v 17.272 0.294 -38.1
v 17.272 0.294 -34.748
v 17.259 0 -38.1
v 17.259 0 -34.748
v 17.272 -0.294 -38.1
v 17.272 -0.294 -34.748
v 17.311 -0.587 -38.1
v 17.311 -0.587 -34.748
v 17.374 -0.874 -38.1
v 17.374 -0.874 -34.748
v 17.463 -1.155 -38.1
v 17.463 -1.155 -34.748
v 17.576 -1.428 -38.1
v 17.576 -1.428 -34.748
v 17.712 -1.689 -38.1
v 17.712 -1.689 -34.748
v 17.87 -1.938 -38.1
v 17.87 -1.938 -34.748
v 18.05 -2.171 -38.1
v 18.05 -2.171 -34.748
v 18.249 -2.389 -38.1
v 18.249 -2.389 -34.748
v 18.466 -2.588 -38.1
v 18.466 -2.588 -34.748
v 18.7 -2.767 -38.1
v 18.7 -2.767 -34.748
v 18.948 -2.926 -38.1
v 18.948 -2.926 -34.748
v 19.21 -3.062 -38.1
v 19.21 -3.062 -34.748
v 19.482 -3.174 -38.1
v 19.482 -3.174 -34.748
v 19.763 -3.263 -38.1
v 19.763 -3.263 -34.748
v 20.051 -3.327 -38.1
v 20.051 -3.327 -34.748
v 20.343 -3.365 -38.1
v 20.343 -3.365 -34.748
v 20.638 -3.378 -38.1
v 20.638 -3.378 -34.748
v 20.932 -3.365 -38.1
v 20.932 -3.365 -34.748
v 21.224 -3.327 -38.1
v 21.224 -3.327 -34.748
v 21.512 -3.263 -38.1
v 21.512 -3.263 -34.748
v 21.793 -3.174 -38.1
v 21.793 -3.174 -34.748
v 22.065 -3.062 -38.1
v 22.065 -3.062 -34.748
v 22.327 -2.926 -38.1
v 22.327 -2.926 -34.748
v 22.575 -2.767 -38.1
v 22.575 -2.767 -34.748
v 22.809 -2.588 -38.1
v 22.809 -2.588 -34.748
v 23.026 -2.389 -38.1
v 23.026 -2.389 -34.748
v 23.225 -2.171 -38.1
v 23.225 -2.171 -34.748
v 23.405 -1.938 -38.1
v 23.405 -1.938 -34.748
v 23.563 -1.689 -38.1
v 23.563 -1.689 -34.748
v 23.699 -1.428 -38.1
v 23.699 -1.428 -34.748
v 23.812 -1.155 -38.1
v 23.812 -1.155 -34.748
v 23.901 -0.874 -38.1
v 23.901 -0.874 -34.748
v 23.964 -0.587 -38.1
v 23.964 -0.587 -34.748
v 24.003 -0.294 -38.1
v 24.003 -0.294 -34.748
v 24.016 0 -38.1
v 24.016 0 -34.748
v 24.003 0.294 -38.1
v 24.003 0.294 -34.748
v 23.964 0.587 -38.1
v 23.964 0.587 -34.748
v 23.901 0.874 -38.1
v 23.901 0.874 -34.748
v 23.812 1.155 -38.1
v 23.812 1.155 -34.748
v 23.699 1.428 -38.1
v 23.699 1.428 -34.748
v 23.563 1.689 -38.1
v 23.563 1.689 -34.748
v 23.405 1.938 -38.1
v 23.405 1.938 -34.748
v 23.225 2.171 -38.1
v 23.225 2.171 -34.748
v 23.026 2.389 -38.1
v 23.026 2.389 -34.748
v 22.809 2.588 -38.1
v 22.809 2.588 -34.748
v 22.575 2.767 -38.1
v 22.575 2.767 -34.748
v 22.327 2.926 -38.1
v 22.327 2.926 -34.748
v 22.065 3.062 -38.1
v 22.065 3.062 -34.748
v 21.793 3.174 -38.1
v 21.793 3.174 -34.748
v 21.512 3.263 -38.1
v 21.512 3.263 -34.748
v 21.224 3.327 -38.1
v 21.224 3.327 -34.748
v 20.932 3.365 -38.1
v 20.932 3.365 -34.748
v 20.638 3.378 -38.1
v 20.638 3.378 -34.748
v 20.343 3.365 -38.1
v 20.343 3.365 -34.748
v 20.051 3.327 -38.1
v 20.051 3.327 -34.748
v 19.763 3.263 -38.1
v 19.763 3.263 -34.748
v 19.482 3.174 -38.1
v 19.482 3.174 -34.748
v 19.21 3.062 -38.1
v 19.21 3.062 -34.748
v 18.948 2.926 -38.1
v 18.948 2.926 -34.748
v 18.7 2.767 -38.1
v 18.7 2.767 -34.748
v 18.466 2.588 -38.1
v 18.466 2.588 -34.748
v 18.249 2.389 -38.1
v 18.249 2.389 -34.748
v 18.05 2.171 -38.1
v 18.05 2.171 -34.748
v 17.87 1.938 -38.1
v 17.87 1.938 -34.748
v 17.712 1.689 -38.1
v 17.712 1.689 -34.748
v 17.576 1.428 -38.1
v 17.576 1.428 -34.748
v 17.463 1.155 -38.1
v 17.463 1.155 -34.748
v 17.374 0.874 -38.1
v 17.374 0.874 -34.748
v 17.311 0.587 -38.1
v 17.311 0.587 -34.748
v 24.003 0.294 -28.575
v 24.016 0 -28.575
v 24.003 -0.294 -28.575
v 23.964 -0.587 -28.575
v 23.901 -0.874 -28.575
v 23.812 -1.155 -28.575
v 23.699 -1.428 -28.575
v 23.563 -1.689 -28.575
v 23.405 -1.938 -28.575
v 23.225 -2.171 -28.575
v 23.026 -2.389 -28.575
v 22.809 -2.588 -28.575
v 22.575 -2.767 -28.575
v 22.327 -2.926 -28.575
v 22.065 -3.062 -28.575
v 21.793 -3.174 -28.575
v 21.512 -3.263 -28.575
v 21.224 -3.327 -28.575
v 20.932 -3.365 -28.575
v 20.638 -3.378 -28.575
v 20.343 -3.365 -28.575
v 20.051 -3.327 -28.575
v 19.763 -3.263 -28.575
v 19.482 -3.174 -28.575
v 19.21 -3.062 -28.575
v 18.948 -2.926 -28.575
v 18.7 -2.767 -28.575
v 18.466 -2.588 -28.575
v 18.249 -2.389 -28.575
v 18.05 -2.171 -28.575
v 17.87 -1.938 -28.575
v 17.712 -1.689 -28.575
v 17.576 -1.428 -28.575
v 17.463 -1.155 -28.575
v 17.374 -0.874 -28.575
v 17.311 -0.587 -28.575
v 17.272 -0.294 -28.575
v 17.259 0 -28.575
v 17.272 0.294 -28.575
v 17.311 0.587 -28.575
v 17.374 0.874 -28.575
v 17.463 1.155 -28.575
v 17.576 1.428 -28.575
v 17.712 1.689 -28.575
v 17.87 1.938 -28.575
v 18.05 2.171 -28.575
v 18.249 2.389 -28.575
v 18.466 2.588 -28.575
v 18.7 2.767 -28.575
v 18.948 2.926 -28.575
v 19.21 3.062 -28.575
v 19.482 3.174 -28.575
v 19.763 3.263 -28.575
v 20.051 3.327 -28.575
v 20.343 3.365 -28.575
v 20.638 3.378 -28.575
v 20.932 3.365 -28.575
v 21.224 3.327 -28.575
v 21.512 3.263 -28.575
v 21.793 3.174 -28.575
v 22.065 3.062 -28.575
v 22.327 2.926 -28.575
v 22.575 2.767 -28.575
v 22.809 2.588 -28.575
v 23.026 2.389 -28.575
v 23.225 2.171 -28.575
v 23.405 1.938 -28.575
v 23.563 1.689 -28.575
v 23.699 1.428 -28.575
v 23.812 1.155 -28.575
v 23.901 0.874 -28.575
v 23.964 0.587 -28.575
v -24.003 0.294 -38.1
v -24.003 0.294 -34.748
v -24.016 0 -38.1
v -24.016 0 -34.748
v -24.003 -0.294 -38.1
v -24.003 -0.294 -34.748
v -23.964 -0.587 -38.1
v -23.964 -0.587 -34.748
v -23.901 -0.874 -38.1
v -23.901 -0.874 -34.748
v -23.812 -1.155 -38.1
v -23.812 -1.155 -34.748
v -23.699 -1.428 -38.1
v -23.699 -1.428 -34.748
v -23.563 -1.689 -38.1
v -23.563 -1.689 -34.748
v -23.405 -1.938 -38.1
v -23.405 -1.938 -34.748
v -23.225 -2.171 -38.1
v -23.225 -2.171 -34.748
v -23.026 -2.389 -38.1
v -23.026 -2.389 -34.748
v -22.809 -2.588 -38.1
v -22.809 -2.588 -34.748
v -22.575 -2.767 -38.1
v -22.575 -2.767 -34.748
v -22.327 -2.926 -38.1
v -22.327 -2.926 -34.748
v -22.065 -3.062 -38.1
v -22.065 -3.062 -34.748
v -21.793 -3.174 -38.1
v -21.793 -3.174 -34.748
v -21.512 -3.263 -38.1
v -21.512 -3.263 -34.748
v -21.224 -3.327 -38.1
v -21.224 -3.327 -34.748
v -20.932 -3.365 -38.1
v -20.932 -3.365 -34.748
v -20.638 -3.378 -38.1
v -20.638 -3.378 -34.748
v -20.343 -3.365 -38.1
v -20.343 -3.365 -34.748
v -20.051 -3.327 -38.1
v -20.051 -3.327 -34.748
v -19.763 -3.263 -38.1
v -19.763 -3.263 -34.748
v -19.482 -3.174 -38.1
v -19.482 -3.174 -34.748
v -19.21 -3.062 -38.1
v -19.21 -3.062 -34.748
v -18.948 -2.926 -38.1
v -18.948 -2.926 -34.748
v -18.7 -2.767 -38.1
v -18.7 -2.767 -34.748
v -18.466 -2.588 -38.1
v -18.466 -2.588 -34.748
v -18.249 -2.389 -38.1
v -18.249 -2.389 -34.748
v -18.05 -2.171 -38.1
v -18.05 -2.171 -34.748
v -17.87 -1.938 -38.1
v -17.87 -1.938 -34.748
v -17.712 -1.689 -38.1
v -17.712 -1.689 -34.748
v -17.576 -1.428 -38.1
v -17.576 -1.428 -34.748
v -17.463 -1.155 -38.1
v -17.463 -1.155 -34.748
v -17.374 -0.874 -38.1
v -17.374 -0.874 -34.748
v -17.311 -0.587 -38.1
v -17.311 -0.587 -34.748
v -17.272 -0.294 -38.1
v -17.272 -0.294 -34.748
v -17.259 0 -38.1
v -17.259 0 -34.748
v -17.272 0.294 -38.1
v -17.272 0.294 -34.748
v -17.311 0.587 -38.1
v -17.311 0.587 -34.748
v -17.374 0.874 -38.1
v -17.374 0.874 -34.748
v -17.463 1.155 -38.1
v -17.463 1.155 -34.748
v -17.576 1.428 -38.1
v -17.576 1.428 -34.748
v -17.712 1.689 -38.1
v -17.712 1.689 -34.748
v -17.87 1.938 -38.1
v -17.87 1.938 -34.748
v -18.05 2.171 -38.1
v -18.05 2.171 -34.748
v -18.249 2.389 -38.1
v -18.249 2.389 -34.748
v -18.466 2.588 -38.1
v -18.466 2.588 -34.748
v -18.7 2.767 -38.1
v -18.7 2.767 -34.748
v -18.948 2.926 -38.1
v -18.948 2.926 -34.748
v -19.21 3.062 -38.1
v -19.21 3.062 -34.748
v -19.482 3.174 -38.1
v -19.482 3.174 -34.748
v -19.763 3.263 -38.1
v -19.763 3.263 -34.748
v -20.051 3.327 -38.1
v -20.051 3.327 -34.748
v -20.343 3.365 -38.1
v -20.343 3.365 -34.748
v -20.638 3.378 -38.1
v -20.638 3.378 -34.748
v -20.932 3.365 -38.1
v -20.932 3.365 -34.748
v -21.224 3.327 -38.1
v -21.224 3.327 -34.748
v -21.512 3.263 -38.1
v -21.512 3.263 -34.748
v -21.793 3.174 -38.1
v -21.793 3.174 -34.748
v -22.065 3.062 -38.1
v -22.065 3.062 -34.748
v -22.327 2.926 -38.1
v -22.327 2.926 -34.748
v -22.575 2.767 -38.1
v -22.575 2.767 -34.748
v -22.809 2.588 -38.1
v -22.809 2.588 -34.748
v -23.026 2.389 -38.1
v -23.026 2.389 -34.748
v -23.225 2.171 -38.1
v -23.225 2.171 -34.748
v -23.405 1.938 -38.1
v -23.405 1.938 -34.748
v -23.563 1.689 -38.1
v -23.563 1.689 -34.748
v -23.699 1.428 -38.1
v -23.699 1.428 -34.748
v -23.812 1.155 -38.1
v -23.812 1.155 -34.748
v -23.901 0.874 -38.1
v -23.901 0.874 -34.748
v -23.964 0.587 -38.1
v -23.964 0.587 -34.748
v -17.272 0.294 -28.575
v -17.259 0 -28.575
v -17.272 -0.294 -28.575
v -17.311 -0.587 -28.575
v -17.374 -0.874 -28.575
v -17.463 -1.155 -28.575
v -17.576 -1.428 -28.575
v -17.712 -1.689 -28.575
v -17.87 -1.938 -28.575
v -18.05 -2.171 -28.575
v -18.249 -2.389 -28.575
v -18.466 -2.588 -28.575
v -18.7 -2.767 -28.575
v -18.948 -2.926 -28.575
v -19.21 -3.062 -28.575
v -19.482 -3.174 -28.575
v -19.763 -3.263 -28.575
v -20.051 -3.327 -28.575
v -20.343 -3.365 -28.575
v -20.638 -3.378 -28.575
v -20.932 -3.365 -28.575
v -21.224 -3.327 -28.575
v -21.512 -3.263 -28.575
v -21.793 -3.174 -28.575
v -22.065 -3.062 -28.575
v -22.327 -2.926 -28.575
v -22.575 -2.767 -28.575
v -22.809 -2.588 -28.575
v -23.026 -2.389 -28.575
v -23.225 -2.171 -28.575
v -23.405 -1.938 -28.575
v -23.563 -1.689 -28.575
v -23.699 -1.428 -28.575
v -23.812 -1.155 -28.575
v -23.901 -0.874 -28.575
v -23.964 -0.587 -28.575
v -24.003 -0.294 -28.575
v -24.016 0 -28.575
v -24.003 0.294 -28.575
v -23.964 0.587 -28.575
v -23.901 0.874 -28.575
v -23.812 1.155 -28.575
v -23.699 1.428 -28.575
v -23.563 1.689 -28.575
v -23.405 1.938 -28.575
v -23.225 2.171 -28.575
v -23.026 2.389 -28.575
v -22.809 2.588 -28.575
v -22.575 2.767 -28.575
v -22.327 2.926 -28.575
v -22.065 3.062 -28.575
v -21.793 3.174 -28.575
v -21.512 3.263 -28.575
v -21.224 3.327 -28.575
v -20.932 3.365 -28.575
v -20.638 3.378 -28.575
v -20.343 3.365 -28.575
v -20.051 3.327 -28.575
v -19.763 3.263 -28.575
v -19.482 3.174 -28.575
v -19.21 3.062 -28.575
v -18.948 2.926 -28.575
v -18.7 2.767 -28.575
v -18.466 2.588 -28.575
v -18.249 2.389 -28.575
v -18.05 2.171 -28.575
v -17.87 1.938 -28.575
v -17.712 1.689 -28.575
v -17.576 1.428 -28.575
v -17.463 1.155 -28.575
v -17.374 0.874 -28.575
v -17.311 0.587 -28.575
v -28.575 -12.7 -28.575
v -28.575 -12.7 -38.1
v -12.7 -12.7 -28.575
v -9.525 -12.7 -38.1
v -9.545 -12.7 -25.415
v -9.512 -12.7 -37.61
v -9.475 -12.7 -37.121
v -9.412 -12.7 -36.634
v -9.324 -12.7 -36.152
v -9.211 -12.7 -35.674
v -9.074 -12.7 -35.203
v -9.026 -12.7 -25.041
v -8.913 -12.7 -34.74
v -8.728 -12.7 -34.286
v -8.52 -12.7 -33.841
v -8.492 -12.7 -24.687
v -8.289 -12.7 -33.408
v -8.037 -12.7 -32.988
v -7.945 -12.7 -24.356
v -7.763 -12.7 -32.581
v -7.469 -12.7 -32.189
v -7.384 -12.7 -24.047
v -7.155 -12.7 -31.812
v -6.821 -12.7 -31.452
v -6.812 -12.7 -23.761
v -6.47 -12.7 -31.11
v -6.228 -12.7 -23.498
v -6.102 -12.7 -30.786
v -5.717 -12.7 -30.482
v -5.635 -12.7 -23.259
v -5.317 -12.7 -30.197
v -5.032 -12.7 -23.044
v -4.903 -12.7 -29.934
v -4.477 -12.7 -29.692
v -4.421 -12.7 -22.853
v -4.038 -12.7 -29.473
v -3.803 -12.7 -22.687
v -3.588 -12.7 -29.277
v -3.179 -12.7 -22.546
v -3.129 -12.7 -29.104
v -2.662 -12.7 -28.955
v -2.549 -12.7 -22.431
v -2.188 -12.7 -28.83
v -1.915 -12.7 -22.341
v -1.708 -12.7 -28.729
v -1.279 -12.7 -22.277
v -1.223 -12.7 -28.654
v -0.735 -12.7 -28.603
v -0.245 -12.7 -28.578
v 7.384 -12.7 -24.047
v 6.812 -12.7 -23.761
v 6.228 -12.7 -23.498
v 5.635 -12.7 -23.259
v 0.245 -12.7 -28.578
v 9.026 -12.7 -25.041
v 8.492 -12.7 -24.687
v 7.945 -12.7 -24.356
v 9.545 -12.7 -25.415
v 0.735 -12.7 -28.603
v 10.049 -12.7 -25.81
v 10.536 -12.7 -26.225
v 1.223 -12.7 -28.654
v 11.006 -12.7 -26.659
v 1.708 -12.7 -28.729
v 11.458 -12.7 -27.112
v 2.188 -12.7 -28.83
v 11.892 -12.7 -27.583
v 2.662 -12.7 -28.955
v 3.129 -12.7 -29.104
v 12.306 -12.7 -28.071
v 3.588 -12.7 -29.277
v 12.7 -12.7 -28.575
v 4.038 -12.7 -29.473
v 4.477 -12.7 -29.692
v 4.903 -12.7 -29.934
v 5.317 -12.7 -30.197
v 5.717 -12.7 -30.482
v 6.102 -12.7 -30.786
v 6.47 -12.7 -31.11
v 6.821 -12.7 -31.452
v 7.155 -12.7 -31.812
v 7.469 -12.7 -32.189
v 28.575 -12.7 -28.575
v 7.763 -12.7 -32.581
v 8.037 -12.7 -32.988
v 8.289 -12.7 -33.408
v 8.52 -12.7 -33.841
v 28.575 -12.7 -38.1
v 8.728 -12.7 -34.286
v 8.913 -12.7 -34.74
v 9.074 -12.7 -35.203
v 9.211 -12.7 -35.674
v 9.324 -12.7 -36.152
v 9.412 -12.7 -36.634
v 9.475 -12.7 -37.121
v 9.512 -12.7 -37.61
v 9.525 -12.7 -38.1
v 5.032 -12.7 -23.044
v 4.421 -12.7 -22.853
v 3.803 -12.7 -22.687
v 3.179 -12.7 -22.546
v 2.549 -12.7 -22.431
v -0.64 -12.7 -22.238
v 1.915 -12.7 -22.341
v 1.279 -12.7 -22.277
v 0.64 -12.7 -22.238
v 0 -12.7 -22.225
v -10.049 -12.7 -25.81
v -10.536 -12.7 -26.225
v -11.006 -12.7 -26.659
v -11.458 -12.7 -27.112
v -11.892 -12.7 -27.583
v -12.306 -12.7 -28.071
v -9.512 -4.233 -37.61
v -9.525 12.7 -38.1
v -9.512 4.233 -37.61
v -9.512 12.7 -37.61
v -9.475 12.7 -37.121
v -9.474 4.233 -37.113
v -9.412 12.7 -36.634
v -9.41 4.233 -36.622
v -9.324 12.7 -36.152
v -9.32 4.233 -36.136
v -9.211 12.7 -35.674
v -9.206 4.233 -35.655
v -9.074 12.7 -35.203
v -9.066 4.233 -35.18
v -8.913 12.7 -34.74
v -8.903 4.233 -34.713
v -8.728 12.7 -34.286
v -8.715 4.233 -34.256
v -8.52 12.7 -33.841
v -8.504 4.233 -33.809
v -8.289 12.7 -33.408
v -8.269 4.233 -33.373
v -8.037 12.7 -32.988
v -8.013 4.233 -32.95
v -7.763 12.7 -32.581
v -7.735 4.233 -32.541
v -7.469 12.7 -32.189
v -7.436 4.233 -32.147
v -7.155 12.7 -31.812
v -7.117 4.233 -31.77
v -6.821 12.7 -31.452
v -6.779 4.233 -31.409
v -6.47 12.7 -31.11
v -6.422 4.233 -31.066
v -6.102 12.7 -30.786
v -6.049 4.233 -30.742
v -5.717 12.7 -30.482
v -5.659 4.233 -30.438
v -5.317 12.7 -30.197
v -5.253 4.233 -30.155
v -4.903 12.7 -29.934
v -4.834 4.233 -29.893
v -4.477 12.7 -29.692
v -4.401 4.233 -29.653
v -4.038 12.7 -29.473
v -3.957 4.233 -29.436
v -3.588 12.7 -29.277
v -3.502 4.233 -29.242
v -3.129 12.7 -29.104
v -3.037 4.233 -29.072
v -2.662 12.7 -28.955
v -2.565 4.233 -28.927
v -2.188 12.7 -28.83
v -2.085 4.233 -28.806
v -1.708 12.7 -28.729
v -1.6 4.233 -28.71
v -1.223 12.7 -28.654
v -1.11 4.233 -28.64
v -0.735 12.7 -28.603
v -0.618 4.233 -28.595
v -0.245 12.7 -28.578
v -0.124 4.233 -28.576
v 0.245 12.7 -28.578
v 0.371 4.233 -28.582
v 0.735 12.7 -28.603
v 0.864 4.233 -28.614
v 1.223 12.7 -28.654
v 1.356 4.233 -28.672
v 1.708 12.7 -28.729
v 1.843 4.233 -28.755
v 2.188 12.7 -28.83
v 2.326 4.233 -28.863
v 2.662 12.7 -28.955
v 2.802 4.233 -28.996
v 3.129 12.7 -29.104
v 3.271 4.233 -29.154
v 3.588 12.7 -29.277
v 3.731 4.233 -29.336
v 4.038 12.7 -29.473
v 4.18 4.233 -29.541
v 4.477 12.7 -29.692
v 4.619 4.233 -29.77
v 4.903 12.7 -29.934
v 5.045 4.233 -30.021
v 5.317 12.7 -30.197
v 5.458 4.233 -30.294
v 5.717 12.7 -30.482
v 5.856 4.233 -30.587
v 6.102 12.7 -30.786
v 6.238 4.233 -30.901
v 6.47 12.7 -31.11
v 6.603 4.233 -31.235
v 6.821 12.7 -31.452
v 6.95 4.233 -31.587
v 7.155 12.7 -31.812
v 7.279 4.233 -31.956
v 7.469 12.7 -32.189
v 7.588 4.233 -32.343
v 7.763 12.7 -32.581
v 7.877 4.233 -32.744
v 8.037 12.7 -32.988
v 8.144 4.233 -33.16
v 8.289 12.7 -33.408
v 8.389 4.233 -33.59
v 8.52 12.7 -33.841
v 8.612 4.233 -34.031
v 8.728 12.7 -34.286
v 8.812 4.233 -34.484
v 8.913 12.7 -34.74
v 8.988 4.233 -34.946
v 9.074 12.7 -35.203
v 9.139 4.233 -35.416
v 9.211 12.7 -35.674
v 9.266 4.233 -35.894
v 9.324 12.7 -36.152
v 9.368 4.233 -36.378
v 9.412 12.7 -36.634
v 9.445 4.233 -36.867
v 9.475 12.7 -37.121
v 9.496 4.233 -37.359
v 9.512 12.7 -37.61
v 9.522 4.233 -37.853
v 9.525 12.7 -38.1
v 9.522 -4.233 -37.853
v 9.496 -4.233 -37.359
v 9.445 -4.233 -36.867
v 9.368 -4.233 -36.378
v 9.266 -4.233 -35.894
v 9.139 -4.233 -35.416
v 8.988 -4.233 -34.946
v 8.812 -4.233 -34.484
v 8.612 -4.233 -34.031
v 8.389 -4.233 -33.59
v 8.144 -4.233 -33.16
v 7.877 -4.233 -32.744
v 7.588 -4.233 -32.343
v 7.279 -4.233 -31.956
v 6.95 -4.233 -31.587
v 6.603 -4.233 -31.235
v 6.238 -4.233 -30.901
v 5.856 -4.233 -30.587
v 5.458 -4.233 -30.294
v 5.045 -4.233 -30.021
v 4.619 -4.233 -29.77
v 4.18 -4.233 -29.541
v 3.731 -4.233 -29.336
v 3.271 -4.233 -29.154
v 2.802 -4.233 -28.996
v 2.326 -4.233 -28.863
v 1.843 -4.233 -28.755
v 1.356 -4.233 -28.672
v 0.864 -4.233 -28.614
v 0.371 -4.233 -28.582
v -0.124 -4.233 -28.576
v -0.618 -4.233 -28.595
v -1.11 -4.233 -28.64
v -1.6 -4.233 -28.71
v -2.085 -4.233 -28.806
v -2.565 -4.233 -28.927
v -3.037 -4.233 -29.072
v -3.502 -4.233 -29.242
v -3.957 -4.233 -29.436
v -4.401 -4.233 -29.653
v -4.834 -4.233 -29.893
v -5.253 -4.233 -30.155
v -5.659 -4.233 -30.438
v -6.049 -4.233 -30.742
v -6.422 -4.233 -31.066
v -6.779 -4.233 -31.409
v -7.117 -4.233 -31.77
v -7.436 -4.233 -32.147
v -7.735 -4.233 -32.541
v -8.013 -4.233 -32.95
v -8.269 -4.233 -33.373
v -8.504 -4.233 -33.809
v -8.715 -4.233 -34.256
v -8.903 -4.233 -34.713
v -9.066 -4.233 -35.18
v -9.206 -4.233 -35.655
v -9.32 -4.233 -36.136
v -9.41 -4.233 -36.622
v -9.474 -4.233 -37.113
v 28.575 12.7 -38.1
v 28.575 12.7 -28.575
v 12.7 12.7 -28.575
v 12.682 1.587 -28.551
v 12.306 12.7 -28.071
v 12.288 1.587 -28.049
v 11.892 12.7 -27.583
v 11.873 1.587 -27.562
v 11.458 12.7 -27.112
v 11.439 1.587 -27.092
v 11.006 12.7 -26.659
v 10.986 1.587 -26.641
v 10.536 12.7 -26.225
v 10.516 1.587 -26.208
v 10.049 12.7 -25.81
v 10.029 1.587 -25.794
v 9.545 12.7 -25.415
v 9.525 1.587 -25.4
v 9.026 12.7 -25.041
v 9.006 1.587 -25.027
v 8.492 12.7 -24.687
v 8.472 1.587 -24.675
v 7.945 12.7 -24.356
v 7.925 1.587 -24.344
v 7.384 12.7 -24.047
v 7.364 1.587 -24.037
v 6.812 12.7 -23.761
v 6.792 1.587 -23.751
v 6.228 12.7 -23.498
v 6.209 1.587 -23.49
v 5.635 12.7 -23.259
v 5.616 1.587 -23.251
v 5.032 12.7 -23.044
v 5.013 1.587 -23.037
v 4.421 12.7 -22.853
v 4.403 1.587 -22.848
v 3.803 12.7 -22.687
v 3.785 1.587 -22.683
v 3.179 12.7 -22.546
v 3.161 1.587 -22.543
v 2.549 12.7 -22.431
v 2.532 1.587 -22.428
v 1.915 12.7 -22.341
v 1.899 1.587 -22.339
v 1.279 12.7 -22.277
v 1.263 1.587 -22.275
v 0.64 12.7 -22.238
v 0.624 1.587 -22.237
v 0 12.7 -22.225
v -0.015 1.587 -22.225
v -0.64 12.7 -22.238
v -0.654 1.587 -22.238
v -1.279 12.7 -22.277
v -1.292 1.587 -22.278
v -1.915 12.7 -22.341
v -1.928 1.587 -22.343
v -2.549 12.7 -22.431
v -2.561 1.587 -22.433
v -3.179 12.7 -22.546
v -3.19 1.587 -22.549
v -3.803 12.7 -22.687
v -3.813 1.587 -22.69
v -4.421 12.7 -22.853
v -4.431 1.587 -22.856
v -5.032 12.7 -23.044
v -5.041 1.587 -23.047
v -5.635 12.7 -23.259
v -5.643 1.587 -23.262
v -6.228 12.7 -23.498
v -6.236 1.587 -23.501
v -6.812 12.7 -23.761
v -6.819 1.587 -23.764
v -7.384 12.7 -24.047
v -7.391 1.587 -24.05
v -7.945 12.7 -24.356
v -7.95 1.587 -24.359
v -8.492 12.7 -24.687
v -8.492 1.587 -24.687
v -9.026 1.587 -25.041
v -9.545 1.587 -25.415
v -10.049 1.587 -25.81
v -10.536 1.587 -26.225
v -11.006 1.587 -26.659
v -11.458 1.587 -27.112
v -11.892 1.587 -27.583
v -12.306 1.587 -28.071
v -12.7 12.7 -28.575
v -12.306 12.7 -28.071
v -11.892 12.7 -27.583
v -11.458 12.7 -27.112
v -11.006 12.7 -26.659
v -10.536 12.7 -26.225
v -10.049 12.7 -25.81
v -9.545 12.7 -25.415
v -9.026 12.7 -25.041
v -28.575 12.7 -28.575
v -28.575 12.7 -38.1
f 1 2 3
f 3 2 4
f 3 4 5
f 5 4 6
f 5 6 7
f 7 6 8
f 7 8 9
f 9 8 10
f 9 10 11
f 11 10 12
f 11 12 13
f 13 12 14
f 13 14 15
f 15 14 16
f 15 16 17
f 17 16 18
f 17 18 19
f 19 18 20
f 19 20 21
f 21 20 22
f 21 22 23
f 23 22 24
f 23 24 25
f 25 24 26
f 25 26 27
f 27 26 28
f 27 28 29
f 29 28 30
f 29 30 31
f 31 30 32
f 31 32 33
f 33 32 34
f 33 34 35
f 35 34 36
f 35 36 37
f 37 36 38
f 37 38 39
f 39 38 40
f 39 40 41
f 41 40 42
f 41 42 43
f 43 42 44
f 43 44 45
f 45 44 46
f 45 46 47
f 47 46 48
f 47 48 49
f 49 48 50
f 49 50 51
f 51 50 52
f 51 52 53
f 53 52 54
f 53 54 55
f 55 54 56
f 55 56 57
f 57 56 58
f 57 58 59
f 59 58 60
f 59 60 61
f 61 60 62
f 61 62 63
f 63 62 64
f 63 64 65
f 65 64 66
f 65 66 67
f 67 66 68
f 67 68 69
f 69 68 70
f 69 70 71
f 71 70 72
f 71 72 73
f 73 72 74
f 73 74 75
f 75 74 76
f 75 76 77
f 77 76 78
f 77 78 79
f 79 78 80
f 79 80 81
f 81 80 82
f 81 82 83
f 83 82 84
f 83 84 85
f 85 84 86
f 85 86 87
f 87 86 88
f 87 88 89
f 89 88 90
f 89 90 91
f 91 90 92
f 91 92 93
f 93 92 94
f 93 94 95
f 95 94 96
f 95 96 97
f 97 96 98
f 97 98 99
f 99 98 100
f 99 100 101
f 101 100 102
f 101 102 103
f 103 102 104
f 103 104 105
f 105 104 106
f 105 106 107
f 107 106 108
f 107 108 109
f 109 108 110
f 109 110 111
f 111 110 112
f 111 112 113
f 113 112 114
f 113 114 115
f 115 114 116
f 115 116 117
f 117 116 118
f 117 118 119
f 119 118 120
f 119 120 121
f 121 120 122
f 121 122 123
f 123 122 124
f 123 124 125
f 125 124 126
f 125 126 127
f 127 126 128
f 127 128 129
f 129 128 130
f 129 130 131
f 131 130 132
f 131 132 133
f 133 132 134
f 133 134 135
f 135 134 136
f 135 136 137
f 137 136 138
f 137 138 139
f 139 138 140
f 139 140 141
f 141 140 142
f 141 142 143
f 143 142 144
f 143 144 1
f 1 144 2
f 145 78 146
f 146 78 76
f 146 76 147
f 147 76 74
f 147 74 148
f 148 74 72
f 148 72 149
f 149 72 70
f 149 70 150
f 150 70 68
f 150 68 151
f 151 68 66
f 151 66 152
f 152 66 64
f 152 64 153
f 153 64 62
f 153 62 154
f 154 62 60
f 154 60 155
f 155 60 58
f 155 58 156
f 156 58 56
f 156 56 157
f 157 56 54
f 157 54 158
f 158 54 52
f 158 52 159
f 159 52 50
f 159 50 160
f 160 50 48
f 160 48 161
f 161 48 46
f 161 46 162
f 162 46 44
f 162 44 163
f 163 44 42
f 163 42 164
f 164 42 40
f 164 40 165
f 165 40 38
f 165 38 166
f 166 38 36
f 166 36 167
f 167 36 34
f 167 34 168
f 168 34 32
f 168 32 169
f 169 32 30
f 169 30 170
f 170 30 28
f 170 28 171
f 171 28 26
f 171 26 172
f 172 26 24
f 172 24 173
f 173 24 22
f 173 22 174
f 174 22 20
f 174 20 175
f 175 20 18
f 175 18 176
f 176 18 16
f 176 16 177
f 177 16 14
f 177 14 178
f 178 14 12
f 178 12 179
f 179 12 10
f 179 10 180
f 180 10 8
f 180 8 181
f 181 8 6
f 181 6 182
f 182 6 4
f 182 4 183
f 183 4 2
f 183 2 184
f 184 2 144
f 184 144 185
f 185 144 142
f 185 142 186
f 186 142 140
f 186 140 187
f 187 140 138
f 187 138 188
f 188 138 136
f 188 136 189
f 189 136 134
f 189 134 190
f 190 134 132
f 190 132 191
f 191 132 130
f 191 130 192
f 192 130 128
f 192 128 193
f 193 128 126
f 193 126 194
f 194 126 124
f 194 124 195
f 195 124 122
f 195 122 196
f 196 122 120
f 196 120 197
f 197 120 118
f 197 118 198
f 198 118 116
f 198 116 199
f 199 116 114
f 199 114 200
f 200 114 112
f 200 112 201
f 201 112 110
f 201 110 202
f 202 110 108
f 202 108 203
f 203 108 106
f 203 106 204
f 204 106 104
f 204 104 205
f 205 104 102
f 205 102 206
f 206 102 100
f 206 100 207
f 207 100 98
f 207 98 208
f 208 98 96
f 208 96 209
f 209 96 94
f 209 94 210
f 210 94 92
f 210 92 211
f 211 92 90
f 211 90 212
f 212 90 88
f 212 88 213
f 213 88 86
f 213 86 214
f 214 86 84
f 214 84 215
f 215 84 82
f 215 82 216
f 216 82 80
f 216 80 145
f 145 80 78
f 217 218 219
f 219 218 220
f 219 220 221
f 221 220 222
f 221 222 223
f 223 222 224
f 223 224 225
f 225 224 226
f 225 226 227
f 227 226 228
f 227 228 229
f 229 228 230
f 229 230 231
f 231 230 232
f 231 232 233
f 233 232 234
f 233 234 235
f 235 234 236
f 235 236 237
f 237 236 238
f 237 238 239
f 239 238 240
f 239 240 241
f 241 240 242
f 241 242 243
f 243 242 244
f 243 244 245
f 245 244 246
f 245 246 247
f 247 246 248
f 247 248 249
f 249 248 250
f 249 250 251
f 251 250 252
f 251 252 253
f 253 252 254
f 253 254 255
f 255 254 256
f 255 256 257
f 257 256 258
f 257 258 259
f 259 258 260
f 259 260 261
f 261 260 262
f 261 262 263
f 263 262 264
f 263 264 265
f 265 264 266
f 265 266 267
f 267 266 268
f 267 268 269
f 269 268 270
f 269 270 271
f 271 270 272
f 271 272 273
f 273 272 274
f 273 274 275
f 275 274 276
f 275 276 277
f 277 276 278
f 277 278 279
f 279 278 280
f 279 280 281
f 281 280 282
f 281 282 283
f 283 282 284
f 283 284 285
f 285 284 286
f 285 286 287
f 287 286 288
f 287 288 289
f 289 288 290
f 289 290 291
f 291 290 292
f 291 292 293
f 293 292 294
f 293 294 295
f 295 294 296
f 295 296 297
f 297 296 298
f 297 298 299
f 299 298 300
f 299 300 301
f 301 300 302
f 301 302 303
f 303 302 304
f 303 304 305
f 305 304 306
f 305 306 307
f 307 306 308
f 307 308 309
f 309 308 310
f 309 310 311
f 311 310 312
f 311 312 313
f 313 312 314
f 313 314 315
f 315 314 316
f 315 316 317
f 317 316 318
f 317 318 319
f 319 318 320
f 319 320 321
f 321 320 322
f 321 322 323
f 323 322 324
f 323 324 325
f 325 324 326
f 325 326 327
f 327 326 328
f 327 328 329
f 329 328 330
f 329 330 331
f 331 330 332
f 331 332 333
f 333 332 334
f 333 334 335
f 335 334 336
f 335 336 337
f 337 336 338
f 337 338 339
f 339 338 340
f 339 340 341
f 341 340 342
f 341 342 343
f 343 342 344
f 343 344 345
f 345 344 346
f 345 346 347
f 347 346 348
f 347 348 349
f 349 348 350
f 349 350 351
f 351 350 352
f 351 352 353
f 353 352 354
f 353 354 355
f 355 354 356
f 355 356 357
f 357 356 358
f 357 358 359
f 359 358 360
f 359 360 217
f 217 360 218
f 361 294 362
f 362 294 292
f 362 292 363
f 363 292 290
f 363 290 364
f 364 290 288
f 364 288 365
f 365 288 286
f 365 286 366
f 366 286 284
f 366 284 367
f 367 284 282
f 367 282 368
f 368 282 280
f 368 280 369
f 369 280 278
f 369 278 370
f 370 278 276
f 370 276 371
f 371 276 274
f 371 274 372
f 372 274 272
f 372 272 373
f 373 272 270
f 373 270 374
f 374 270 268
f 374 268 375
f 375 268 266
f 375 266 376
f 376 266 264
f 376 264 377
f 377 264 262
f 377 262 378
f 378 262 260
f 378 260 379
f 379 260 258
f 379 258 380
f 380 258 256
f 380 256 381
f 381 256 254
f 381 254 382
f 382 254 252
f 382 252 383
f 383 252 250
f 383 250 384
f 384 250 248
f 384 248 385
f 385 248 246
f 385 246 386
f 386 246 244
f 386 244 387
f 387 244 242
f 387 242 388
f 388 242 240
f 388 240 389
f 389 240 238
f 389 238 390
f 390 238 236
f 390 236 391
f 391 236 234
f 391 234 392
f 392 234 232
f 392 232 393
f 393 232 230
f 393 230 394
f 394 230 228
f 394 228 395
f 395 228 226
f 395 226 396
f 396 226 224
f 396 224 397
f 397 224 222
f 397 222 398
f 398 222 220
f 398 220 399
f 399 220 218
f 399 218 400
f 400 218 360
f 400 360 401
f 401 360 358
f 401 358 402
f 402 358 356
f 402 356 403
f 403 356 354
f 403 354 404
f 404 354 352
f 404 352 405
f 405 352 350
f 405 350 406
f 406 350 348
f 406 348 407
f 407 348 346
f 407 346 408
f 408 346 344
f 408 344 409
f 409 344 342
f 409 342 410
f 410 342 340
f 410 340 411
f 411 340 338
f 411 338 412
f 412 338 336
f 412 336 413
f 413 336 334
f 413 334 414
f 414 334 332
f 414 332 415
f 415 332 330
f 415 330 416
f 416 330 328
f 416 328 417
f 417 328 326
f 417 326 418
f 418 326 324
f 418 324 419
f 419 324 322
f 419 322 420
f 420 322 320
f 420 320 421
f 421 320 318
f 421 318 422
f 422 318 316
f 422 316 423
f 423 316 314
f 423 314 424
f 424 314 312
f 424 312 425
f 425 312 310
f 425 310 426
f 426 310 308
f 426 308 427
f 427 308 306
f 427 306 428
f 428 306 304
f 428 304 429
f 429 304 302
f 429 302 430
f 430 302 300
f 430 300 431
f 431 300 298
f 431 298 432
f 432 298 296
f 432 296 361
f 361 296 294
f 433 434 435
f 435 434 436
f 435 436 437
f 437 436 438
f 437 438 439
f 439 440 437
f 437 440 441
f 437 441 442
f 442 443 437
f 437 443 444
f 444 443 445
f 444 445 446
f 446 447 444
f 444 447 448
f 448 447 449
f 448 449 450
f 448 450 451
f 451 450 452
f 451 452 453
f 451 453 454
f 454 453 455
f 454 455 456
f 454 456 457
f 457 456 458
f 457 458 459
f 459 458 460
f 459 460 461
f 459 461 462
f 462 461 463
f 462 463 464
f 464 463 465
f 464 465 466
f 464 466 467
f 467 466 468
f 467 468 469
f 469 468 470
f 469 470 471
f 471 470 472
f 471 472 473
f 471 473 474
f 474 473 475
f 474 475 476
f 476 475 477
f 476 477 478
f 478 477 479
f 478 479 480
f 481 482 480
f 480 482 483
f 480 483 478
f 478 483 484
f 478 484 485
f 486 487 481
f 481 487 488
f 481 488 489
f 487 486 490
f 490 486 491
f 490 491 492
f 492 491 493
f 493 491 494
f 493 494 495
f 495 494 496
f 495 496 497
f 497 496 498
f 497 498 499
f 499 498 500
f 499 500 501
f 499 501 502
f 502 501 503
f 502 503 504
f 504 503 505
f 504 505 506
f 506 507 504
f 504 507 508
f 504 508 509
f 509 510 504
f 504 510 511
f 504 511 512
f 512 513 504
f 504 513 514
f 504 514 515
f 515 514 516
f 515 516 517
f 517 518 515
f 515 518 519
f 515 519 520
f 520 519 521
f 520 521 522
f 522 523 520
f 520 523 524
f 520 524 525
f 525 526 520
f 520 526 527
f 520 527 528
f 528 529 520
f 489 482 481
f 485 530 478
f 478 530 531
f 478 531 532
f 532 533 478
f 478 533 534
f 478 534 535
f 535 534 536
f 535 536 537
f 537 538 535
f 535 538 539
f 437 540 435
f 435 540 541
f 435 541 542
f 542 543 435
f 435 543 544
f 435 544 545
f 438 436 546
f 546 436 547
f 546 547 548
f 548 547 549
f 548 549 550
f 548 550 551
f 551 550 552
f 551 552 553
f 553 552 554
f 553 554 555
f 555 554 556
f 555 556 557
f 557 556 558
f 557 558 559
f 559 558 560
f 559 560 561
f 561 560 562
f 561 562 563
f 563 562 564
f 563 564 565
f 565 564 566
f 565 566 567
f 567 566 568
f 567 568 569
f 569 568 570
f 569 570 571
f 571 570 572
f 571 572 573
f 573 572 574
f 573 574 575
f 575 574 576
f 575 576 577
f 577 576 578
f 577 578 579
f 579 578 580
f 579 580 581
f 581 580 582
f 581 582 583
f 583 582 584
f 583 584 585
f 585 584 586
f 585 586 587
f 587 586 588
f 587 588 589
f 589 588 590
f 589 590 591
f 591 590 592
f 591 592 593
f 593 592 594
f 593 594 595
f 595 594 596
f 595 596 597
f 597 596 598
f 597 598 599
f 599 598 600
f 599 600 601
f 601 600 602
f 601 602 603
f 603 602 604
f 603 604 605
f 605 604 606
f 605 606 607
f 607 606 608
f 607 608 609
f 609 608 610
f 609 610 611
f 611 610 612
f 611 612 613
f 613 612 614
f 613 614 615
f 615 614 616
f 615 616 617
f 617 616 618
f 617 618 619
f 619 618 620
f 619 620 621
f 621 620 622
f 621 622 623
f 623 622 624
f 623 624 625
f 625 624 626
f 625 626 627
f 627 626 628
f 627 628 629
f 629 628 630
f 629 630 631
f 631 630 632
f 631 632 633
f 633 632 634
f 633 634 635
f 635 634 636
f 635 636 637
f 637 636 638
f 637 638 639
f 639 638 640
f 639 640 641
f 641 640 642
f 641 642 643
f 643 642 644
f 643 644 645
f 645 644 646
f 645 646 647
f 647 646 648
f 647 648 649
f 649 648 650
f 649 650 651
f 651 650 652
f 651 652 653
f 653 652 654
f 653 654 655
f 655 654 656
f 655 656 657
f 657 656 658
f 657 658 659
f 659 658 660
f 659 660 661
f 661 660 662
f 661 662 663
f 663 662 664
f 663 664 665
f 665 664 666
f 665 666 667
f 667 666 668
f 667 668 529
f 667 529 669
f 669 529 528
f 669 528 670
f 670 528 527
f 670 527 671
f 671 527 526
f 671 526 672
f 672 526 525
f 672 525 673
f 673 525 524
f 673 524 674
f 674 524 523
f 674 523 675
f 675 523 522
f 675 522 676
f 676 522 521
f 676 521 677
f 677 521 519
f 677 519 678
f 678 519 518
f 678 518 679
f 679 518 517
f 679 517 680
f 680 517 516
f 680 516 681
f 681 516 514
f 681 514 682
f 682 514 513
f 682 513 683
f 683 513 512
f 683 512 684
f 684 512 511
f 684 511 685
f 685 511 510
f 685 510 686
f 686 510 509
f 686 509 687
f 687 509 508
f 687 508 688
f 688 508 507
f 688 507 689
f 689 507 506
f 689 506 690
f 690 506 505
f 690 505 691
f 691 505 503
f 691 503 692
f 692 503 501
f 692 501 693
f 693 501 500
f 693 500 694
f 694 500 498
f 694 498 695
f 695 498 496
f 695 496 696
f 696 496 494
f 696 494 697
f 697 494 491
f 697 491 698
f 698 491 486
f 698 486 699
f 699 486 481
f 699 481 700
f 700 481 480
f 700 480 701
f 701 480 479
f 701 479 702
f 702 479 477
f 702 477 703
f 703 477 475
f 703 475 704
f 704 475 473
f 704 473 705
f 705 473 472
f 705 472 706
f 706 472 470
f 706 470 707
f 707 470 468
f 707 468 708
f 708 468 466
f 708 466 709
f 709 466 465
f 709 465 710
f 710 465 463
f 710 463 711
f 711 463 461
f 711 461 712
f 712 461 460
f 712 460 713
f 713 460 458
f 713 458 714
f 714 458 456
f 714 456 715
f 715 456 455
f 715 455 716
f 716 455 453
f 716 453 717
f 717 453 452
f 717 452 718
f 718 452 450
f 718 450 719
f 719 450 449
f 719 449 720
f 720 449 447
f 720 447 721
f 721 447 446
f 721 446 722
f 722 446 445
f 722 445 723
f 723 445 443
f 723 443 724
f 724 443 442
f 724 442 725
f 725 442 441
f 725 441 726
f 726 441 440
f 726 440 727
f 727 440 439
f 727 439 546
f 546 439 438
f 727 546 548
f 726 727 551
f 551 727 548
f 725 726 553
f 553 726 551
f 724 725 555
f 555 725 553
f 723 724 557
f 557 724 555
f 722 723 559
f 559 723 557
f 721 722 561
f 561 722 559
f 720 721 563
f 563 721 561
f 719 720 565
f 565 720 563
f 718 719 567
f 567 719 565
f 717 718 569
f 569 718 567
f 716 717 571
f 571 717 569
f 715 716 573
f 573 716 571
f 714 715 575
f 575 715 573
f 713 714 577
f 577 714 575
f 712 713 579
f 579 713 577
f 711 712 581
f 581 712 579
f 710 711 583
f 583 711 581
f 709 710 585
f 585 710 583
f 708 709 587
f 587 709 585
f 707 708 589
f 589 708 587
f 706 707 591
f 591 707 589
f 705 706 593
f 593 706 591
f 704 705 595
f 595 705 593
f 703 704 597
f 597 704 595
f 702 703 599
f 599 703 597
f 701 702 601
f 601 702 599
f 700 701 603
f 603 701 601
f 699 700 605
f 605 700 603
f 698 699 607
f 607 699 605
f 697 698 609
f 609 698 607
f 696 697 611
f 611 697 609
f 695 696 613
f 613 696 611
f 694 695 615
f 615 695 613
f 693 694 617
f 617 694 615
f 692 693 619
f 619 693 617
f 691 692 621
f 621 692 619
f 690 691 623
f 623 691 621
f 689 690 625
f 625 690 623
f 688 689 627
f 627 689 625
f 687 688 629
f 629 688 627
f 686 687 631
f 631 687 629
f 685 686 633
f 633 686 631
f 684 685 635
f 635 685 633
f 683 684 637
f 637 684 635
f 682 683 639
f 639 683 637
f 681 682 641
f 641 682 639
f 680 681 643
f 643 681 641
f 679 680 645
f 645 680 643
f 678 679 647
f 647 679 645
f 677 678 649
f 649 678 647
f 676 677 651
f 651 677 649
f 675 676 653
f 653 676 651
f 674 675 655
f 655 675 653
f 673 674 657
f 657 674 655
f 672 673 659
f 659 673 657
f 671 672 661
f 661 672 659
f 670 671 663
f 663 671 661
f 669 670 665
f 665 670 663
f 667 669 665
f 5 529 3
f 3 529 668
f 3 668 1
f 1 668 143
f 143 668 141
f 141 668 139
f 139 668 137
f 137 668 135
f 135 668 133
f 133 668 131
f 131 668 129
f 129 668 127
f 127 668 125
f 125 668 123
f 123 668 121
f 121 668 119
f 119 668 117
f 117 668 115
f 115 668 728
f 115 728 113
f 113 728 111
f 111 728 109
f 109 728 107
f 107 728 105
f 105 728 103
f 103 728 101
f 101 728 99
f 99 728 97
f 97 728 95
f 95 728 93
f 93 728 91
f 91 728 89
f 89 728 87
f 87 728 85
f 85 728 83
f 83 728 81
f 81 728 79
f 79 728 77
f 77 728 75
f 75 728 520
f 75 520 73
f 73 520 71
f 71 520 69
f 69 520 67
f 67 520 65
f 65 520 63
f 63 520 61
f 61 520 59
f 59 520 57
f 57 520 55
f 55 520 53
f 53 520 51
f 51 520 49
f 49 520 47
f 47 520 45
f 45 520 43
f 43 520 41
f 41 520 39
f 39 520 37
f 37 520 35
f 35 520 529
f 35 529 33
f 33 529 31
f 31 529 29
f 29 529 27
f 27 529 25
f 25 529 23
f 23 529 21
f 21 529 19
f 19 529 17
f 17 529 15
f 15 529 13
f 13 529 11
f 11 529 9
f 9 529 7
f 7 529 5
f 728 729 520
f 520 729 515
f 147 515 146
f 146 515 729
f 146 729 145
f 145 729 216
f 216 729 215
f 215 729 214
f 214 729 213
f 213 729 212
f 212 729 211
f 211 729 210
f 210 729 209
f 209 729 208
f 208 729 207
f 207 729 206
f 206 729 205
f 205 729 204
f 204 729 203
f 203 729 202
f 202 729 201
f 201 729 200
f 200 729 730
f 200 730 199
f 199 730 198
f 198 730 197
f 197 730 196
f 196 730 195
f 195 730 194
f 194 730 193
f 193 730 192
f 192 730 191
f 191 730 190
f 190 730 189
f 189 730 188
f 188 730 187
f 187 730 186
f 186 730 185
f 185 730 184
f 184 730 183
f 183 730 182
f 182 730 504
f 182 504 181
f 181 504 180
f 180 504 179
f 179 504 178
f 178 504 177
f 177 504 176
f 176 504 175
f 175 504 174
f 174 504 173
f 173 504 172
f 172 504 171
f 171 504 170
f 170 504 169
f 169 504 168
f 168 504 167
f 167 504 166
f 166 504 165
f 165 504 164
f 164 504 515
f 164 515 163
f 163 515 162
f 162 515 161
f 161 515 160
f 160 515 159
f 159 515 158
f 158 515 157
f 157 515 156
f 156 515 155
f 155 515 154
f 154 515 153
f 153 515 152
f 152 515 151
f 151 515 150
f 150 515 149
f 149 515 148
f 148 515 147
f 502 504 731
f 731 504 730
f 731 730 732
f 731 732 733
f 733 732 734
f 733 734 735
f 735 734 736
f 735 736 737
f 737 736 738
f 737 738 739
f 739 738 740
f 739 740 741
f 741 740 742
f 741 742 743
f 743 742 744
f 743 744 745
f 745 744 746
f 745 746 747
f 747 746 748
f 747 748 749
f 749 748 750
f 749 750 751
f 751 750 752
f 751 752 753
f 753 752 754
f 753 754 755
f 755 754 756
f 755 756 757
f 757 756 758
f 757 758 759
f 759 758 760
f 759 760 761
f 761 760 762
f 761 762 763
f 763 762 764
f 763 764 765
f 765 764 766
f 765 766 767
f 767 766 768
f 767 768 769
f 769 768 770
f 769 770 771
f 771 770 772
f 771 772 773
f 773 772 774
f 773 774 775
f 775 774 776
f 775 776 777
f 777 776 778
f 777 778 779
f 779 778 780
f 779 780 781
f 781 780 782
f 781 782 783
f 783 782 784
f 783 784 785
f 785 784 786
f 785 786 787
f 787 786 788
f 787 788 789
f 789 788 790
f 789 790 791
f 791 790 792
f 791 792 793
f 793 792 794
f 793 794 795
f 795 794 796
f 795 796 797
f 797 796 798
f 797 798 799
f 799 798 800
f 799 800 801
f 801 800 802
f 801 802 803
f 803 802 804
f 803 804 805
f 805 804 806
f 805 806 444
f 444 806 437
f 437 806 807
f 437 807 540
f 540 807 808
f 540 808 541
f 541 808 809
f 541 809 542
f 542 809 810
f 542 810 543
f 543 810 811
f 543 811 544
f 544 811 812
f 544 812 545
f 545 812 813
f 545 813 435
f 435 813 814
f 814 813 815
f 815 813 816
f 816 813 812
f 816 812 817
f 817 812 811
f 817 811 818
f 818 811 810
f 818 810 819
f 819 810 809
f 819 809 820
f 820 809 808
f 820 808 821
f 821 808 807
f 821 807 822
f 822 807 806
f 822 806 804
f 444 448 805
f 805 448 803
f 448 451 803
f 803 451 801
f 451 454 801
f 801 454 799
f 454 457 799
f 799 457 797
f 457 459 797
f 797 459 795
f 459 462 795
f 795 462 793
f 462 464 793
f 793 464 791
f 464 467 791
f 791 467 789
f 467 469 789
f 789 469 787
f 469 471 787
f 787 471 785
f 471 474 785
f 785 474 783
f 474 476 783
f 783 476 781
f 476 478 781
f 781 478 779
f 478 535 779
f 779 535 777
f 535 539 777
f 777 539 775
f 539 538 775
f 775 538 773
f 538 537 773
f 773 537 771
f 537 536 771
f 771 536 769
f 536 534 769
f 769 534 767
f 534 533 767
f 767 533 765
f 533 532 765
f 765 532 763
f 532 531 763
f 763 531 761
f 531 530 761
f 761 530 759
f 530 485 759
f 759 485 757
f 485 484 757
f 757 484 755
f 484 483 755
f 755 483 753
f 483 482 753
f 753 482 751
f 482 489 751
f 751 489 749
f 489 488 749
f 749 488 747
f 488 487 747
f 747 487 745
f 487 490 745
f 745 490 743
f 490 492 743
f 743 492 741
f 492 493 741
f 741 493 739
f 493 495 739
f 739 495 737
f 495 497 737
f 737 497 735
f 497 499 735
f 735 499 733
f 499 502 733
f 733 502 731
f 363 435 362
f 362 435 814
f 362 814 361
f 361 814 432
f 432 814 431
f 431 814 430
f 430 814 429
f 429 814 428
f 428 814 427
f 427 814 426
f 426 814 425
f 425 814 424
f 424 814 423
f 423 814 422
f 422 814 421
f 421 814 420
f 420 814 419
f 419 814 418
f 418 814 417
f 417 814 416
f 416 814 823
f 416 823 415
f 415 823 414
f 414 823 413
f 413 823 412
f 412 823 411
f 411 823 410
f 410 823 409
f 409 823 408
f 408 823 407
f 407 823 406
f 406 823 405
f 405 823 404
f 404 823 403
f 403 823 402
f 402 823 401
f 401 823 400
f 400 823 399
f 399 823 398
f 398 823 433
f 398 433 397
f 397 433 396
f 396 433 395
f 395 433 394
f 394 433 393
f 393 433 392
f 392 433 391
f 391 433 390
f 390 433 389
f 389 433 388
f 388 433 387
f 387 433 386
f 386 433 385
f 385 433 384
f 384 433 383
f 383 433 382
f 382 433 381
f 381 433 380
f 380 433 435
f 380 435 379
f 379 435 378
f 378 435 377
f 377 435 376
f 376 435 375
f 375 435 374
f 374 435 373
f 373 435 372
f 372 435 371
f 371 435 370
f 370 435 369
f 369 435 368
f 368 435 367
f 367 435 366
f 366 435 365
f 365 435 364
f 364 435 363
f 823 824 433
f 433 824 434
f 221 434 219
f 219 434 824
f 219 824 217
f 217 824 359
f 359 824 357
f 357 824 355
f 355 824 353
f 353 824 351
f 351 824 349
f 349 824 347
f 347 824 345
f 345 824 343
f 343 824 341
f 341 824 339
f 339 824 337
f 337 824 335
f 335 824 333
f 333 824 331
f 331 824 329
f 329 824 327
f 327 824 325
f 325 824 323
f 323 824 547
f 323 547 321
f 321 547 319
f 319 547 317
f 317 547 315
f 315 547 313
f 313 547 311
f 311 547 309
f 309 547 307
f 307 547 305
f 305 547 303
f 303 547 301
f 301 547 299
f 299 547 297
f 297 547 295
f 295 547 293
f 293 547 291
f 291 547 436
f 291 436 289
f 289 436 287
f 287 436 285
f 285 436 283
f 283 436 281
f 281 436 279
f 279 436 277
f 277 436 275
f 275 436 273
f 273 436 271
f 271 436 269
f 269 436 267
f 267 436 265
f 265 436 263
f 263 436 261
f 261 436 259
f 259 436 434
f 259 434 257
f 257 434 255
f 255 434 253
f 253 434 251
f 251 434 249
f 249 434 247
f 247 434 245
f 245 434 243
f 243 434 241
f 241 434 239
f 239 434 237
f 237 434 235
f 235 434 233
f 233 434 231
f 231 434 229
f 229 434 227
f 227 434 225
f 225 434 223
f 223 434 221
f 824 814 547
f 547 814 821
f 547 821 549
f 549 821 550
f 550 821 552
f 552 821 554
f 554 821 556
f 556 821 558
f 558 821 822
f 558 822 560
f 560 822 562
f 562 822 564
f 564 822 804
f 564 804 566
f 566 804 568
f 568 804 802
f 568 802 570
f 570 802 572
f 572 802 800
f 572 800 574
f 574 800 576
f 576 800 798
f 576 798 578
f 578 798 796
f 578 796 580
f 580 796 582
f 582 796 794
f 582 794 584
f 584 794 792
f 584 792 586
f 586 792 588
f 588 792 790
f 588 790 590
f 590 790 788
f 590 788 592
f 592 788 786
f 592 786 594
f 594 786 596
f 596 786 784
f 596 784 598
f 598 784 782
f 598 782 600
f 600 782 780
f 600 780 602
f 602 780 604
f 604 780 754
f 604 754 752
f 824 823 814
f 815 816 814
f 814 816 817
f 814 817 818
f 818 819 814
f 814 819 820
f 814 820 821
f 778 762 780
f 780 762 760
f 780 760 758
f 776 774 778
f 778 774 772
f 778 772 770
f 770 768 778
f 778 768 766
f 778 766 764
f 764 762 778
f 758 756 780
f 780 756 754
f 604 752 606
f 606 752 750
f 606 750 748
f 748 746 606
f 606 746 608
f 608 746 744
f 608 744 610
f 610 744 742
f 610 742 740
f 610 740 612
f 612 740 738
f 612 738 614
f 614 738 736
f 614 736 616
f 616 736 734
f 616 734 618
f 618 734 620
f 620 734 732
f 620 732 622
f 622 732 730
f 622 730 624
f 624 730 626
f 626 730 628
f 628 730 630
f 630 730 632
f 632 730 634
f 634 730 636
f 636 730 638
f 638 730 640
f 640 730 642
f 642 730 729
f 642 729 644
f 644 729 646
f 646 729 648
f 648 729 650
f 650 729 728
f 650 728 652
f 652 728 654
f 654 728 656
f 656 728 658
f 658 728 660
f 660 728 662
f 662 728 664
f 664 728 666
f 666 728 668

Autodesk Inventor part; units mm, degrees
ref_plane "YZ Plane" through (0, 0, 0) normal (1, 0, 0) x (0, 1, 0)
ref_plane "XZ Plane" through (0, 0, 0) normal (0, 1, 0) x (-1, 0, 0)
ref_plane "XY Plane" through (0, 0, 0) normal (0, 0, 1) x (1, 0, 0)
sketch "Sketch1" plane through (0, 0, 0) normal (0, 1, 0) x (-1, 0, 0)
  line L0 (0, 0) -> (0, 38.1) construction
  line L1 (0, 0) -> (0, -38.1) construction
  arc A0 (-9.525, -38.1) -> (9.525, -38.1) centre (0, -38.1) ccw construction
  circle A1 centre (0, 38.1) radius 9.525 construction
  line L2 (15.875, -38.1) -> (28.575, -38.1)
  line L3 (15.875, -38.1) -> (-15.875, -38.1) construction
  line L4 (15.875, -38.1) -> (9.525, -38.1)
  line L5 (-9.525, -38.1) -> (-15.875, -38.1)
  arc A2 (9.525, -38.1) -> (-9.525, -38.1) centre (0, -38.1) ccw construction
  arc A3 (12.7, -28.575) -> (-12.7, -28.575) centre (0, -38.1) ccw
  arc A4 (9.525, -38.1) -> (-9.525, -38.1) centre (0, -38.1) ccw
  line L6 (28.575, -38.1) -> (28.575, -28.575)
  line L7 (28.575, -28.575) -> (12.7, -28.575)
  line L8 (-15.875, -38.1) -> (-28.575, -38.1)
  line L9 (-28.575, -38.1) -> (-28.575, -28.575)
  line L10 (-28.575, -28.575) -> (-12.7, -28.575)
  point P0 (-101.6, -47.625)
  dimension "d0" = 76.2
  dimension "d1" = 19.05
  dimension "d9" = 9.525
  dimension "d17" = 15.875
  dimension "d18" = 15.875
extrude "Extrusion1" add sketch "Sketch1" along normal mid plane 25.4
sketch "Sketch2" plane through (-28.575, 12.7, -28.575) normal (0, 0, 1) x (1, 0, 0)
  line L0 (19.05, 0) -> (0, 0) construction
  line L1 (15.875, -25.4) -> (15.875, 0) construction
  line L2 (0, 0) -> (15.875, -25.4) construction
  line L3 (15.875, -25.4) -> (0, -25.4) construction
  line L4 (15.875, 0) -> (0, -25.4) construction
  point P0 (28.575, -12.7)
  point P1 (7.9375, -12.7)
hole "Hole1" at (-20.6375, 0, -28.575) direction (0, 0, -1) diameter 6.7564 end through all clearance for "Flat Head Machine Screw (82)" size "1/4" standard "Ansi Unified Screw Threads"
sketch "Sketch3" plane through (12.7, 12.7, -28.575) normal (0, 0, 1) x (1, 0, 0)
  line L0 (0, -25.4) -> (0, 0) construction
  line L1 (15.875, -25.4) -> (15.875, 0) construction
  line L2 (0, 0) -> (15.875, -25.4) construction
  line L3 (15.875, -25.4) -> (15.875, 0) construction
  line L4 (15.875, 0) -> (0, -25.4) construction
  point P0 (-12.7, -12.7)
  point P1 (7.9375, -12.7)
hole "Hole2" at (20.6375, 0, -28.575) direction (0, 0, -1) diameter 6.7564 end through all clearance for "Flat Head Machine Screw (82)" size "1/4" standard "Ansi Unified Screw Threads"
equation "\"d0\" = crutchTubSpacing"
equation "\"d1\" = cruchTubeDiam"
equation "\"cruchTubeDiam\" = 19.05"
equation "\"wallThickness\" = 6.35"
equation "\"crutchTubSpacing\" = 76.2"
equation "\"supportHeight\" = 25.4"
properties part number "innerCrutchAttacement"
